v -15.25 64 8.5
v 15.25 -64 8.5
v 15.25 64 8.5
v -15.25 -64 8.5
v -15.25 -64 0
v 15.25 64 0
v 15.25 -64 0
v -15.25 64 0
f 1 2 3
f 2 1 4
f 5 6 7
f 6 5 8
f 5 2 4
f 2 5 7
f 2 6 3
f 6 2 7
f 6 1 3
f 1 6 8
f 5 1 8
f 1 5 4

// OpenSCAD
cube_center([30.5,128,8.5]);


module cube_center(dims,r=0,$fn=64) {
    if(r==0) {
        translate([-dims[0]/2, -dims[1]/2, 0])
        cube(dims);
    } else {
        minkowski() {
            translate([-(dims[0]-2*r)/2, -(dims[1]-2*r)/2, 0])
            cube([dims[0]-2*r,dims[1]-2*r,dims[2]]);
            cylinder(r=r,$fn=$fn,h=0.0001);
        }
    }
}
